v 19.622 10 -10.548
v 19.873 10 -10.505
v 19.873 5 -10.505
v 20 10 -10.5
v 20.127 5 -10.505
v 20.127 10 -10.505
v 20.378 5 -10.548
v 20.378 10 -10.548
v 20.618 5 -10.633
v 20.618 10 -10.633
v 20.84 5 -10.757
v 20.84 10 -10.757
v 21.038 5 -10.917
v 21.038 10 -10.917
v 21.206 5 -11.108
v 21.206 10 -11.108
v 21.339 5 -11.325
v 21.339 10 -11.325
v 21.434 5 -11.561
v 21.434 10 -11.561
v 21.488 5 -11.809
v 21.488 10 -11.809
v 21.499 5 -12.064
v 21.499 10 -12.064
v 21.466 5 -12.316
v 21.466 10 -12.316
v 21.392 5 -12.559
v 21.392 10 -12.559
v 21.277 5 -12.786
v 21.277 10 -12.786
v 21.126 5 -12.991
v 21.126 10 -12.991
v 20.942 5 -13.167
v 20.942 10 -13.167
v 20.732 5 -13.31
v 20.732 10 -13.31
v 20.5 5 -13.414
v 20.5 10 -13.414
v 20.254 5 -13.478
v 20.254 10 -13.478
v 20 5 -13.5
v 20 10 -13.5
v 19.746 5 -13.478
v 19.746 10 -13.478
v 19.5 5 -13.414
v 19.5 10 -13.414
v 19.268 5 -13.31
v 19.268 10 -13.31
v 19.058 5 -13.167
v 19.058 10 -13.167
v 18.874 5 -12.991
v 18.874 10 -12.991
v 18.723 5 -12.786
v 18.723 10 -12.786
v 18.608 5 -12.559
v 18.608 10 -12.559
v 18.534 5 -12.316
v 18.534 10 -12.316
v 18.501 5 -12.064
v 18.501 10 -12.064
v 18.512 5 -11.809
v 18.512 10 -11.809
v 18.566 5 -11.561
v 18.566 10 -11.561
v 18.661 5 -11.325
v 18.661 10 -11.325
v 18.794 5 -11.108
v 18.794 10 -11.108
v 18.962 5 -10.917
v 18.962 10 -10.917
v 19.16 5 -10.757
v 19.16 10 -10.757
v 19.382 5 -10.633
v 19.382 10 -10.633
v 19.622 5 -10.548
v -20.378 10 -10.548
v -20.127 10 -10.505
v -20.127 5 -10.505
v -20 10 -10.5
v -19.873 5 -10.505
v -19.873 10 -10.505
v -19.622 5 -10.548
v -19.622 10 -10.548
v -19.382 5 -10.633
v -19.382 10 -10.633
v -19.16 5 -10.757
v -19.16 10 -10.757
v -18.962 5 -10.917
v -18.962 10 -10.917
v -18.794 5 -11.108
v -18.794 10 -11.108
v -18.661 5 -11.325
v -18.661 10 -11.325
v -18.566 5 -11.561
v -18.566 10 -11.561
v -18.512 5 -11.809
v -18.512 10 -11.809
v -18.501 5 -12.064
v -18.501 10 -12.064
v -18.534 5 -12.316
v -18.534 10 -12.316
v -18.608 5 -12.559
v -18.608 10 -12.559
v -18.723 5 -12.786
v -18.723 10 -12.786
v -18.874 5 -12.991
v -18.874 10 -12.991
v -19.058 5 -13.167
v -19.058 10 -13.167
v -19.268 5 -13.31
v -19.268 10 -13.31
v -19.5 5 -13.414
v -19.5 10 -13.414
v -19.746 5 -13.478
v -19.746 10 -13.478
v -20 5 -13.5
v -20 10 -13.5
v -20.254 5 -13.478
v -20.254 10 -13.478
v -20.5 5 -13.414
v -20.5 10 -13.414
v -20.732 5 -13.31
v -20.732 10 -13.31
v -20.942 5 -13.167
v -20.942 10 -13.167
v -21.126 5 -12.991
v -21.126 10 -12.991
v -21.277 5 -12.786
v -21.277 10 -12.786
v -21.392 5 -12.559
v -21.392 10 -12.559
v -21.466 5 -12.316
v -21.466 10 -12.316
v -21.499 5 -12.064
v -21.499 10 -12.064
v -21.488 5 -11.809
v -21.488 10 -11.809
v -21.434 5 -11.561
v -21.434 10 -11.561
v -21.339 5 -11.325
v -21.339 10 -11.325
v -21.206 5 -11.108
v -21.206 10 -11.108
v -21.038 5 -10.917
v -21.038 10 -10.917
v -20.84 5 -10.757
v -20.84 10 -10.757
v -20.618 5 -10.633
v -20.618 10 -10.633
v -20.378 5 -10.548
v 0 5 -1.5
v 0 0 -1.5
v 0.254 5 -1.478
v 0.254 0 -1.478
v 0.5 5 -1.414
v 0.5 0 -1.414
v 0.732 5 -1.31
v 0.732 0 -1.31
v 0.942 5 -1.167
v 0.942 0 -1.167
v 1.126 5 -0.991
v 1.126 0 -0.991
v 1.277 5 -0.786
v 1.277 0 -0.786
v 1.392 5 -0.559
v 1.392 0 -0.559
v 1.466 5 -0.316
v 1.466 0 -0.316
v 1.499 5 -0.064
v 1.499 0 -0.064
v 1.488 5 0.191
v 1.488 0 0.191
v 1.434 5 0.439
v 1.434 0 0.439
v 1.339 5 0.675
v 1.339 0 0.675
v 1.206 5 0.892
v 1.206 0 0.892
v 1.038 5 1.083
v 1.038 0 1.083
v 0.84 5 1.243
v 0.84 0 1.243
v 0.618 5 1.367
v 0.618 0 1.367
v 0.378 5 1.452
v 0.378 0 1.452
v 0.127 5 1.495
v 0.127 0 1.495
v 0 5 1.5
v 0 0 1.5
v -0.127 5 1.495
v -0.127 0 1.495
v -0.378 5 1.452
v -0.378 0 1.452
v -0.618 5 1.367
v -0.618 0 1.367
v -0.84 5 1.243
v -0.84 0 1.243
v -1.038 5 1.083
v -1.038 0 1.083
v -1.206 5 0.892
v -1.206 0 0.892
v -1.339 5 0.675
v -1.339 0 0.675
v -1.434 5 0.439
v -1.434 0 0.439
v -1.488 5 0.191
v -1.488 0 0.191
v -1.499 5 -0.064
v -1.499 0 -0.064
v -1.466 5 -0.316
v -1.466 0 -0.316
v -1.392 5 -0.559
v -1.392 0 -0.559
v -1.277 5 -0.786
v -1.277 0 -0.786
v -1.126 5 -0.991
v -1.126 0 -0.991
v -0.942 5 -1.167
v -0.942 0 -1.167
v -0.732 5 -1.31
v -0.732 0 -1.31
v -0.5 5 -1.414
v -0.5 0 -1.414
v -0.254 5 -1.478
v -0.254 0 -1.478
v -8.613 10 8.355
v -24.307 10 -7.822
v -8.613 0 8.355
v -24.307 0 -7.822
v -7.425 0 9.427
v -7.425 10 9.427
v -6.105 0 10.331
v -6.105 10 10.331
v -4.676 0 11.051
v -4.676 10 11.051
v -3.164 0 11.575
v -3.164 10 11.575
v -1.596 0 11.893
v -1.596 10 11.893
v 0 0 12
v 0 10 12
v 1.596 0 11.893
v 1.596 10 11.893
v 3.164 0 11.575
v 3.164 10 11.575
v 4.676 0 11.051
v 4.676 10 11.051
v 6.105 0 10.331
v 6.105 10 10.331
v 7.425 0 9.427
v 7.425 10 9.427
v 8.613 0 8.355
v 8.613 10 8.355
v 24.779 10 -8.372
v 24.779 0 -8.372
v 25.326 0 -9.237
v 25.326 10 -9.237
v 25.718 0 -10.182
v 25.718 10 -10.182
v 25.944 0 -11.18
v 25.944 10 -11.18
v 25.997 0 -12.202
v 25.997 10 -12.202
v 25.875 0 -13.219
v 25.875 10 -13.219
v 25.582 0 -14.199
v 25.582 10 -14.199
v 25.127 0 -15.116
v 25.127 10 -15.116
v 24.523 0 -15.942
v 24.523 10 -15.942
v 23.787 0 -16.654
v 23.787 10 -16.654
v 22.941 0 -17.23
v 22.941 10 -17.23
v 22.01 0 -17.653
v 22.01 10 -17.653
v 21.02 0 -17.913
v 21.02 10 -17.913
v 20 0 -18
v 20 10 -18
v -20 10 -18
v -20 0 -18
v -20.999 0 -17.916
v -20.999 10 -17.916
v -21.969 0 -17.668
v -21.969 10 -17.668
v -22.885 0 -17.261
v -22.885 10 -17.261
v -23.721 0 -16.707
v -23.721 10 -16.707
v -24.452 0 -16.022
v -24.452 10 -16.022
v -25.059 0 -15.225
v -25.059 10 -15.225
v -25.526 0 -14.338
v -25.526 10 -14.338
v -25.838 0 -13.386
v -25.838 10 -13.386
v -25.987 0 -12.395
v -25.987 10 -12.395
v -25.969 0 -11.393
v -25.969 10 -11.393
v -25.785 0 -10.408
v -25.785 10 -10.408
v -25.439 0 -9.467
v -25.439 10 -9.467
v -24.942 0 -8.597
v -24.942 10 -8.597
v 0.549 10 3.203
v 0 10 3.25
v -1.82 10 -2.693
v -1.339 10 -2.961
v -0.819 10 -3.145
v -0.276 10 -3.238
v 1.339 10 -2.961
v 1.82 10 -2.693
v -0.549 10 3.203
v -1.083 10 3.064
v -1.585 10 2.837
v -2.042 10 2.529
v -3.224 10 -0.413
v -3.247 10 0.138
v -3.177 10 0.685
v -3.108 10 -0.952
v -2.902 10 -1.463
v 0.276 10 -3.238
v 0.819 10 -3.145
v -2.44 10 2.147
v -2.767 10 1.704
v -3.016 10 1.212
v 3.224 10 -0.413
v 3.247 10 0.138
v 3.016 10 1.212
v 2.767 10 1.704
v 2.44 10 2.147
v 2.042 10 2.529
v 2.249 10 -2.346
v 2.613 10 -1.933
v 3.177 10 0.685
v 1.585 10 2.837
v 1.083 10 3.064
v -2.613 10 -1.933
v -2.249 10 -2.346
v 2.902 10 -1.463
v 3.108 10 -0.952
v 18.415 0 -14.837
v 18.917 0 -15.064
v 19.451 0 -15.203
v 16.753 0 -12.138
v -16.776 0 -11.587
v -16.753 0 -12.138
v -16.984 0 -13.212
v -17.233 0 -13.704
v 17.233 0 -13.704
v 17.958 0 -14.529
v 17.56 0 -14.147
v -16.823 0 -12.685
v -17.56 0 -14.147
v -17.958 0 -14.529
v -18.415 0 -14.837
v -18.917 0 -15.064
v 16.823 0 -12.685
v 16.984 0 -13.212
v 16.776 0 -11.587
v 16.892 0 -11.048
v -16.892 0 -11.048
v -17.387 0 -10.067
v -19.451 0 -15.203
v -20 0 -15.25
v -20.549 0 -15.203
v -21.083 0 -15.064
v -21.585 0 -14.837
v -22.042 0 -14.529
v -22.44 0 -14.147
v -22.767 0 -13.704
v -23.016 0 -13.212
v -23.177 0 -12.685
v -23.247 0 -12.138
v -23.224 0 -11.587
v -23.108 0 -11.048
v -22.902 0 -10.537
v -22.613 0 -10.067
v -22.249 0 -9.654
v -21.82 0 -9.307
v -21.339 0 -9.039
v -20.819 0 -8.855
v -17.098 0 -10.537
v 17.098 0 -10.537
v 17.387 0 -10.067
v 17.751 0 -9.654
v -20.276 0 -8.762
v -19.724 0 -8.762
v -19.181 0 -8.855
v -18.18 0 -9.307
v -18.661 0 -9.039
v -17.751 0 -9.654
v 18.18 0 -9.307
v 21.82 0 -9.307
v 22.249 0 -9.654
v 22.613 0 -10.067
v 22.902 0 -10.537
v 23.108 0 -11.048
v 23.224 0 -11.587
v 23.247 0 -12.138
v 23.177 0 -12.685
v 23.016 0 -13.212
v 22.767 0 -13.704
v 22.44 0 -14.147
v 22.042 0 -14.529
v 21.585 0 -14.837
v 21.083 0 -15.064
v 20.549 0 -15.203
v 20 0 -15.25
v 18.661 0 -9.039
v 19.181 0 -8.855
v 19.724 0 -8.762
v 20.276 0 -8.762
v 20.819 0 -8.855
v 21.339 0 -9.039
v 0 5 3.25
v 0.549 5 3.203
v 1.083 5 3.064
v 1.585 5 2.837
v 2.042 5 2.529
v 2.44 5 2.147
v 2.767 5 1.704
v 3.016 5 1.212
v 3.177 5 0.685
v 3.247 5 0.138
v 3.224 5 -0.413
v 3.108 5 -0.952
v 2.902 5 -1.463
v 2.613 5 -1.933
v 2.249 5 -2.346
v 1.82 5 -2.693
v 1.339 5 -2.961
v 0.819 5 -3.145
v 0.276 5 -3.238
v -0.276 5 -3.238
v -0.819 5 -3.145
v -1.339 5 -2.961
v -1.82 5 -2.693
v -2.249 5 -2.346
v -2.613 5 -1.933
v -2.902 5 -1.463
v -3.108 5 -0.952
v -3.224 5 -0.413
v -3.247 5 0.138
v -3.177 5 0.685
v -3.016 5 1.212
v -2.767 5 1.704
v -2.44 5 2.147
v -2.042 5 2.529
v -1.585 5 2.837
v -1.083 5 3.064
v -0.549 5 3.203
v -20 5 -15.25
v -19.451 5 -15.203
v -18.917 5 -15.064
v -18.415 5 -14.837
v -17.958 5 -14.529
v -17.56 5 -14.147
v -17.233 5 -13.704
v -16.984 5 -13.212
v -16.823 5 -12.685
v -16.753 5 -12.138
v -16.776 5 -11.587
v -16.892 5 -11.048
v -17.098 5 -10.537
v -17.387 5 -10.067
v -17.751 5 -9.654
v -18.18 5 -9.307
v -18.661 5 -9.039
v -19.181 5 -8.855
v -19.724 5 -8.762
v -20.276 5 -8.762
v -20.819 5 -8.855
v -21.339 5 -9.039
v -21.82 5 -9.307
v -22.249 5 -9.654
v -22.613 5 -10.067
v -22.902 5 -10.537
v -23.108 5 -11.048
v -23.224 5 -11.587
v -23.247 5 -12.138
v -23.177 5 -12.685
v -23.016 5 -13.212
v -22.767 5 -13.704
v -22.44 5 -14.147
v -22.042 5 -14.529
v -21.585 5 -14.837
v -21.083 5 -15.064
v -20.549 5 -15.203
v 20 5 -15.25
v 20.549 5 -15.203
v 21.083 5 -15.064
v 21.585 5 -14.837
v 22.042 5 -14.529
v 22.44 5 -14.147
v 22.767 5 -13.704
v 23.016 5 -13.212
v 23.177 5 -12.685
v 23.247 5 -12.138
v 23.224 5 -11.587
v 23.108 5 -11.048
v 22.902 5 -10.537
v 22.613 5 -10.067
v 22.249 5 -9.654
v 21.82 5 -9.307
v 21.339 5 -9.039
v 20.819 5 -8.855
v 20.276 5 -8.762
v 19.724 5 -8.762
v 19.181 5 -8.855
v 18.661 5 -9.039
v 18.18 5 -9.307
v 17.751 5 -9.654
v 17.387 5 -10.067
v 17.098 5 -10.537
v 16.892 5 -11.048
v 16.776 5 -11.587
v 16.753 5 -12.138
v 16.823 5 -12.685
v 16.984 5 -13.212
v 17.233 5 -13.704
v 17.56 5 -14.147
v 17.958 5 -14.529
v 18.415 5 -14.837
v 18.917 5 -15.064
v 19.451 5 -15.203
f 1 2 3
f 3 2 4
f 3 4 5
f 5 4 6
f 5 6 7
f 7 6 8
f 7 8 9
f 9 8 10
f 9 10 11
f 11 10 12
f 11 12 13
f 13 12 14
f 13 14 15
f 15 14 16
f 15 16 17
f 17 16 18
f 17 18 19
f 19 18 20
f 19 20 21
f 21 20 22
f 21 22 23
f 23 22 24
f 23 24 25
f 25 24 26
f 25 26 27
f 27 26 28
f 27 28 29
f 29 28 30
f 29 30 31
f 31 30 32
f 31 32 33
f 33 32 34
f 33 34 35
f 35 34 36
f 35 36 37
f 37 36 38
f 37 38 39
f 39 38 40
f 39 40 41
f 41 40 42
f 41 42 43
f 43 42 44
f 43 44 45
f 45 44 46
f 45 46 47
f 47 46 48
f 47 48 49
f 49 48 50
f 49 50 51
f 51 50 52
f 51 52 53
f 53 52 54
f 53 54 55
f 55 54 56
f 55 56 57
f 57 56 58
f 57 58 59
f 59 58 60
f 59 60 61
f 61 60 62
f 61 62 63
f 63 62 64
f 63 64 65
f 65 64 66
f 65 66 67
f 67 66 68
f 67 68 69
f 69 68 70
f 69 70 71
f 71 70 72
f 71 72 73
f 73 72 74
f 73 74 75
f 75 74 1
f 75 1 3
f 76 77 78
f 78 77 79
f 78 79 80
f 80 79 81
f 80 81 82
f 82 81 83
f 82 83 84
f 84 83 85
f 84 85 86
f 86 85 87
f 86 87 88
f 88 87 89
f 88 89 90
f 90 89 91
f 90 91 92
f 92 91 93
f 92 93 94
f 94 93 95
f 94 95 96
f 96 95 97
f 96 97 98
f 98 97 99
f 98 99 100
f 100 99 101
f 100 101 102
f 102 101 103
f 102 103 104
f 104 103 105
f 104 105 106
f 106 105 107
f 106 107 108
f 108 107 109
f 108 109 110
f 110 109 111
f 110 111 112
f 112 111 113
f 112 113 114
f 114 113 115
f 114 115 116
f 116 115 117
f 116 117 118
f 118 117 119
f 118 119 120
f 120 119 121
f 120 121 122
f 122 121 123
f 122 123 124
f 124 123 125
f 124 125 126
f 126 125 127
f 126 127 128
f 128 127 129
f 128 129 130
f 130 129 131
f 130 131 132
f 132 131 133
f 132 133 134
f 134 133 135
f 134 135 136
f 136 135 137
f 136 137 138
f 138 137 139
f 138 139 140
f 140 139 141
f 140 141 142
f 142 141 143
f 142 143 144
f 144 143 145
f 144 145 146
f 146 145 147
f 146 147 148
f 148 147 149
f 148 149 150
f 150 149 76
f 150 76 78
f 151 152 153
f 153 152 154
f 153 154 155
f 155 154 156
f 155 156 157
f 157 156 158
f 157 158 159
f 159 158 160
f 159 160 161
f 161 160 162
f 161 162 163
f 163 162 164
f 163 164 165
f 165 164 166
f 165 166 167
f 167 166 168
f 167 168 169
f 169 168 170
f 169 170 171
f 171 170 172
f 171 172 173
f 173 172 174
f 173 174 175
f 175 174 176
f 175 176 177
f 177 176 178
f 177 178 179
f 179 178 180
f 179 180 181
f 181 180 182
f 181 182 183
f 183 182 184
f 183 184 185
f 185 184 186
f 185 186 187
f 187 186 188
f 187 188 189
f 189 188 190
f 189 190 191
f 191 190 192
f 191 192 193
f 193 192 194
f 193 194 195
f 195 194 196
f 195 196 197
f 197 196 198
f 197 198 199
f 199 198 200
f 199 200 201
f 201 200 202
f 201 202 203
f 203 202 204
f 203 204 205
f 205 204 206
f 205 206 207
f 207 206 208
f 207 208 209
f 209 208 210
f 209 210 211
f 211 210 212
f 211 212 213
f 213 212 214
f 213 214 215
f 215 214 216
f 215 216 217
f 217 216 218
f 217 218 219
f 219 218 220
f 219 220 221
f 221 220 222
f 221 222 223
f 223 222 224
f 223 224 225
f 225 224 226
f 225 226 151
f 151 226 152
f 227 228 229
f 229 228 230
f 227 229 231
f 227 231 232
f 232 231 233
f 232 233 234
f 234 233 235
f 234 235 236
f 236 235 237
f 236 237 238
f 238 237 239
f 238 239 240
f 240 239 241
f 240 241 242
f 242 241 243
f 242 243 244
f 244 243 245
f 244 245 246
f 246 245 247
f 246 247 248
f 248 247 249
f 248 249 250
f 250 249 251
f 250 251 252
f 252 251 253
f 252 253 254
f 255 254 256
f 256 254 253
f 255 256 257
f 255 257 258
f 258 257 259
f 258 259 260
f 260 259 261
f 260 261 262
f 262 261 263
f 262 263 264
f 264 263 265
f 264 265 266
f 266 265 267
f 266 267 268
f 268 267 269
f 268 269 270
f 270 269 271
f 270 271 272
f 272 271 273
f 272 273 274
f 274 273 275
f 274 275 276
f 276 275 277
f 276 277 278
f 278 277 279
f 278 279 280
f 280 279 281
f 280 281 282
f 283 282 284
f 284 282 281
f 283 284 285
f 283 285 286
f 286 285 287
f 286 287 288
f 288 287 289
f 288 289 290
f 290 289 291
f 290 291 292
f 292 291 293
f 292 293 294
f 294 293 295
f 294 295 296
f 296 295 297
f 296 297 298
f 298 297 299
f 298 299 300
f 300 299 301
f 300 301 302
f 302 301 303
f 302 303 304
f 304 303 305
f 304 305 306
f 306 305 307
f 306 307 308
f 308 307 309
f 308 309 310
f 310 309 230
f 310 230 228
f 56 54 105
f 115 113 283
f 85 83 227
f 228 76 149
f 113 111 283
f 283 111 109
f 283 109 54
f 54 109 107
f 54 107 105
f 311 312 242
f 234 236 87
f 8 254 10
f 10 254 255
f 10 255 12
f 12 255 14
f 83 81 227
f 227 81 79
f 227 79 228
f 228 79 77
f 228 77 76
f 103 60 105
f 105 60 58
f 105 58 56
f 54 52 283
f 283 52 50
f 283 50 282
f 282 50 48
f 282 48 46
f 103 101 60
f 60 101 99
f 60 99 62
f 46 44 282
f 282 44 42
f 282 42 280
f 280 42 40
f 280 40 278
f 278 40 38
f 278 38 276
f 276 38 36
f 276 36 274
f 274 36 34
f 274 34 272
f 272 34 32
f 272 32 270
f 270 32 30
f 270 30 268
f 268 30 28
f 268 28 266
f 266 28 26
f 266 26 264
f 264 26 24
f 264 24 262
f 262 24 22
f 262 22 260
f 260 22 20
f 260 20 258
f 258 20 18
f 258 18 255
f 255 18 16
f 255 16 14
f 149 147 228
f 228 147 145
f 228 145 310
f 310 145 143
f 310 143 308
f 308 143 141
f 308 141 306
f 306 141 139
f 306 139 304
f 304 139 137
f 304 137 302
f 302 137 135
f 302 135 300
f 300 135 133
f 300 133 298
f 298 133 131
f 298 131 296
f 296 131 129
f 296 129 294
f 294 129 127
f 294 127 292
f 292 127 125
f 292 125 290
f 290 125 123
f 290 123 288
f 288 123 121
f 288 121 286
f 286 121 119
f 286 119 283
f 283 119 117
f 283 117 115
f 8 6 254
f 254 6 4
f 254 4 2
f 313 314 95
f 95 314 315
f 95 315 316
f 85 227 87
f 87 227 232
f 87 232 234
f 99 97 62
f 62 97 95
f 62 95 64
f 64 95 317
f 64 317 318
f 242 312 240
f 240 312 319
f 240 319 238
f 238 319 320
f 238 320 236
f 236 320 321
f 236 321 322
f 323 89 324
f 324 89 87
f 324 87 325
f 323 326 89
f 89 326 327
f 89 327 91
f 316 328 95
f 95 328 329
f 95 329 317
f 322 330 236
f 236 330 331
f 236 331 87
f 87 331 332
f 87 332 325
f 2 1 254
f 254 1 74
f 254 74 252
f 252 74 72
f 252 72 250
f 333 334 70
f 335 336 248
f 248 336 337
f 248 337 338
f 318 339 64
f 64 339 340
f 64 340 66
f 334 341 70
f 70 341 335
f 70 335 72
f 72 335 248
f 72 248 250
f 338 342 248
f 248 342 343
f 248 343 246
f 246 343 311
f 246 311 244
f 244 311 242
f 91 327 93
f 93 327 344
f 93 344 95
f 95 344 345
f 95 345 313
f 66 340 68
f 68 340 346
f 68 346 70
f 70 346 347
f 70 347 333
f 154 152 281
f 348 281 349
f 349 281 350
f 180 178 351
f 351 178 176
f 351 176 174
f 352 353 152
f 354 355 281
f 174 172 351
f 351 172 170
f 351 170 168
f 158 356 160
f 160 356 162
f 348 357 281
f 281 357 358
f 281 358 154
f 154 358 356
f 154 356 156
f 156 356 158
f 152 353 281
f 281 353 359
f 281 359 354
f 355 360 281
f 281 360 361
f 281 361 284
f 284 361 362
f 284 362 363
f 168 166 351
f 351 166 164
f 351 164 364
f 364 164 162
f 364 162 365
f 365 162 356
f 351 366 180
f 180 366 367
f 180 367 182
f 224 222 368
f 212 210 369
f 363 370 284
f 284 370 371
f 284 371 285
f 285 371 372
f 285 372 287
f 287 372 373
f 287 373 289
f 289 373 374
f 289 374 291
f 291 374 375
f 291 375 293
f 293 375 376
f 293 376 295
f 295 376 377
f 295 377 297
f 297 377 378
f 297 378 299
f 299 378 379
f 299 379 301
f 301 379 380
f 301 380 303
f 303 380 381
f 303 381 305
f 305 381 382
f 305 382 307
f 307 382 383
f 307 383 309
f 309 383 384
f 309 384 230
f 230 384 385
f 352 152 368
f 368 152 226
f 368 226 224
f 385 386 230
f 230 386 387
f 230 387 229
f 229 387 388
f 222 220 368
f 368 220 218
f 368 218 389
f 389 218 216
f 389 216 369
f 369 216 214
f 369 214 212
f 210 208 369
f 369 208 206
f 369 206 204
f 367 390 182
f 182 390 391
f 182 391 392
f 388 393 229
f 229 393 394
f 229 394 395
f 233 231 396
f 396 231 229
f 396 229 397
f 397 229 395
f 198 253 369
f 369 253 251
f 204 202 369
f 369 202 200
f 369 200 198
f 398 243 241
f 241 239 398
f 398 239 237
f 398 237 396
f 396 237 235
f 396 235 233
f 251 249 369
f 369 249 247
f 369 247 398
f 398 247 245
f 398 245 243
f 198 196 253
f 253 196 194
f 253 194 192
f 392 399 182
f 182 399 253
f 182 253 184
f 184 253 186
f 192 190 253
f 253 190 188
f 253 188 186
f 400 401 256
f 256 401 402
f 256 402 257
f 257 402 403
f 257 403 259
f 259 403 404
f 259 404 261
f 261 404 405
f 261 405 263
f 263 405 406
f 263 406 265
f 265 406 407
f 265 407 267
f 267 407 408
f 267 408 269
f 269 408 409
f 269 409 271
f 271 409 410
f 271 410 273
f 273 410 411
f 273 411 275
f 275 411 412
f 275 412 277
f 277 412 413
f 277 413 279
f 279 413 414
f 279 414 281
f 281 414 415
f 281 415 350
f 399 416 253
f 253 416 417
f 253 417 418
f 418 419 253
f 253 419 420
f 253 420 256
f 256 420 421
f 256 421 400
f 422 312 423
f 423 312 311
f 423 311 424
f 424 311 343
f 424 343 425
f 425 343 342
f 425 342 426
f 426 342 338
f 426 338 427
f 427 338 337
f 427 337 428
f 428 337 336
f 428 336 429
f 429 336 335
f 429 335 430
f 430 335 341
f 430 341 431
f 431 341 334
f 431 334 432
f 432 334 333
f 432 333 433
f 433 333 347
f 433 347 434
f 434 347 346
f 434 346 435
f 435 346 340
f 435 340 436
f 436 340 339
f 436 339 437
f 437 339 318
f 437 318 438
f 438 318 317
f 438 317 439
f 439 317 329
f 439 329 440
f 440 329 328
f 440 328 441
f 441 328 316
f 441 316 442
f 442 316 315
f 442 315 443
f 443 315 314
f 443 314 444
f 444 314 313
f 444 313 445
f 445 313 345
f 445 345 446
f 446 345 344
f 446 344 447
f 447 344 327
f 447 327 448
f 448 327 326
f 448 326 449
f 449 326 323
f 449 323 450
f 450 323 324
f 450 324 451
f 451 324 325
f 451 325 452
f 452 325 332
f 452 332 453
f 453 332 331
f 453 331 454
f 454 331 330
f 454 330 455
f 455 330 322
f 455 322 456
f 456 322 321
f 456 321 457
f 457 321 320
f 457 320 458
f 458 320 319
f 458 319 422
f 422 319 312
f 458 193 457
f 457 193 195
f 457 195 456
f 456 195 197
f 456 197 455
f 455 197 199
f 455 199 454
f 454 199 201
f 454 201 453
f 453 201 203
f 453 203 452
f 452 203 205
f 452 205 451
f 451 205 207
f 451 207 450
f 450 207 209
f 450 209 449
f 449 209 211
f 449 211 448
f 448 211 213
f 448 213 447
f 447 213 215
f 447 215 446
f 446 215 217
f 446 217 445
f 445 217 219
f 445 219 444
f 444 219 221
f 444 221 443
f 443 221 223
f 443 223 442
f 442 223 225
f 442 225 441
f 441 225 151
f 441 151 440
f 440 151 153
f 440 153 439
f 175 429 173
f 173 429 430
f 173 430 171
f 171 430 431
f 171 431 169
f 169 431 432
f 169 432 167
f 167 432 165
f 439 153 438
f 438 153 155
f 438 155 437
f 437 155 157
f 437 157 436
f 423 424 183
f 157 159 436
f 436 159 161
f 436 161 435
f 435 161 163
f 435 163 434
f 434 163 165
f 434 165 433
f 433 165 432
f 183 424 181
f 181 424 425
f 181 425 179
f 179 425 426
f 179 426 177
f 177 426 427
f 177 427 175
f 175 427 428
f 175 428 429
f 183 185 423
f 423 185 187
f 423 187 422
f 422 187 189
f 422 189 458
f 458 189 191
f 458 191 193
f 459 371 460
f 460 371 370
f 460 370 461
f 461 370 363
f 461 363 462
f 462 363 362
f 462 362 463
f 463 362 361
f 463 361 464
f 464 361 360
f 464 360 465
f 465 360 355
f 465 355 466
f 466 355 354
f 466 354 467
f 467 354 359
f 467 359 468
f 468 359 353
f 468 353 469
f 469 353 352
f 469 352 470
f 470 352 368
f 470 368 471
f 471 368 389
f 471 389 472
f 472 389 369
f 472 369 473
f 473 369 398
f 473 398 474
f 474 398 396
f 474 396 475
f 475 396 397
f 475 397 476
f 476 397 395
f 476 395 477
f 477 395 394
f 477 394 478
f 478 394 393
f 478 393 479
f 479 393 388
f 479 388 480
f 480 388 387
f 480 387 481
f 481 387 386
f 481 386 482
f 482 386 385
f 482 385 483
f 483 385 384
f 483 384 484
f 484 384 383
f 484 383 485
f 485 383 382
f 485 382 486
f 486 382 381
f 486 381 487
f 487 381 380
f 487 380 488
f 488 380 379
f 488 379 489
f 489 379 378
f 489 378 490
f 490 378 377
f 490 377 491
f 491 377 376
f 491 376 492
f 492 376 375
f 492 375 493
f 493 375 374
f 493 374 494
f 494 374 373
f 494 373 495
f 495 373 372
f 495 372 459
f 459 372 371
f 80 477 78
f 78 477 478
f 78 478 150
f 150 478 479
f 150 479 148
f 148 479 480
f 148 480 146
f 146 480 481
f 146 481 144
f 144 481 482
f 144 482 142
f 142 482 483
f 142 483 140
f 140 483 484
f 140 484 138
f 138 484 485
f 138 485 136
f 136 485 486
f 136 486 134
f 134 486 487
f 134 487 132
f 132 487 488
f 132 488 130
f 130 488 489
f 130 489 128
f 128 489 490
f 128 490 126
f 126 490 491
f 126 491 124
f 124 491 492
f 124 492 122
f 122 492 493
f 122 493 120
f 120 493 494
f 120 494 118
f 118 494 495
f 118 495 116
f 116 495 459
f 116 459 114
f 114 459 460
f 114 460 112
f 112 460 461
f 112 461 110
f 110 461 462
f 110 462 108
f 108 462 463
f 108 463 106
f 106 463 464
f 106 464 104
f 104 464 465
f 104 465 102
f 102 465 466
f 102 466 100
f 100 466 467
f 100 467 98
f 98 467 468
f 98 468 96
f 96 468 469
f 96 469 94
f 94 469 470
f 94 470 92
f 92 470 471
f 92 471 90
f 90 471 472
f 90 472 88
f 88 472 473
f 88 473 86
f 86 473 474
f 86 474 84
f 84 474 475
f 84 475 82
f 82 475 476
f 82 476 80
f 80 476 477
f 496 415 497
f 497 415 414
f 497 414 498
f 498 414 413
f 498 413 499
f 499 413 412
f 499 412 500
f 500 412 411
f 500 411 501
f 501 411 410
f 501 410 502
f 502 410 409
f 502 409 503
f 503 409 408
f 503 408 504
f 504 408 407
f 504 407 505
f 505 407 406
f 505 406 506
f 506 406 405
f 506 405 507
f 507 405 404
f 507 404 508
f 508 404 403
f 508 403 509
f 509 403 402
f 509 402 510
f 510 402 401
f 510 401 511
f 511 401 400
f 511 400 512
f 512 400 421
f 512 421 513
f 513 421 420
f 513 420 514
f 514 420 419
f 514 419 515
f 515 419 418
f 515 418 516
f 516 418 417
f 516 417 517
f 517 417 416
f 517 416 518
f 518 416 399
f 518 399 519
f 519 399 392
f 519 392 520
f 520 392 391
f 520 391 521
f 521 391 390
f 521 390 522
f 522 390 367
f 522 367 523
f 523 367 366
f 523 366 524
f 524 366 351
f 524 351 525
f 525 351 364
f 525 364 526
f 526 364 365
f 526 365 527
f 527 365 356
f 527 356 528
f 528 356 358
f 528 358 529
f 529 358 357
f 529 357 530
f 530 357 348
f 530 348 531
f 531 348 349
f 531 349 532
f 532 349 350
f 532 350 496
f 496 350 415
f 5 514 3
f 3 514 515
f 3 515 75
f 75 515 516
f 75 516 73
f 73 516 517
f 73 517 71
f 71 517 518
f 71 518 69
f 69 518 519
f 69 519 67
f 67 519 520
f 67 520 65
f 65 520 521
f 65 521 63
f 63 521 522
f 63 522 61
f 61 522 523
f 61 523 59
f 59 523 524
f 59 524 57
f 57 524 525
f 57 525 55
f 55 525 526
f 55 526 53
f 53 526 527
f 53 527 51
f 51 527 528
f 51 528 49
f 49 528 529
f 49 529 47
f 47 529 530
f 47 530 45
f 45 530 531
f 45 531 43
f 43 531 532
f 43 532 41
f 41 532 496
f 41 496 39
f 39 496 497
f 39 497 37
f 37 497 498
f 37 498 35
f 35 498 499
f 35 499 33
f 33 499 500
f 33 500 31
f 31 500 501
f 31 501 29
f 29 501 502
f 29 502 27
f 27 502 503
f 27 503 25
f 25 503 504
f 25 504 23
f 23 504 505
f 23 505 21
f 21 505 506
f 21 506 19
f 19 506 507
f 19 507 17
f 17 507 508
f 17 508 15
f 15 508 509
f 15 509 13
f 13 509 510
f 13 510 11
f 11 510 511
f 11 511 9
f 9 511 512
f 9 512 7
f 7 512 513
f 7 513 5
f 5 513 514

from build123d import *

# Parameters (mm, degrees)
BOSS_EXTRUDE1_OUTLINE_R = 1.5
BOSS_EXTRUDE1_DEPTH     = 10
SKETCH3_R               = 3.25
CUT_EXTRUDE1_DEPTH      = 5
SKETCH4_R               = 3.25
CUT_EXTRUDE2_DEPTH      = 5


# Read off the part's stored shape, not the designer's step: Boss-Extrude1
with BuildPart() as part:
    # Boss-Extrude1 outline → Boss-Extrude1 (new body)
    with BuildSketch(Plane(origin=(0, 0, 0), x_dir=(1, 0, 0), z_dir=(0, 1, 0))):
        with BuildLine():
            ThreePointArc((-20, 18), (-25.525673356, 14.33814755), (-24.306613207, 7.822311322))
            Line((-24.306613207, 7.822311322), (-8.613226413, -8.355377356))
            ThreePointArc((-8.613226413, -8.355377356), (0, -12), (8.613226413, -8.355377356))
            Line((8.613226413, -8.355377356), (24.778677898, 8.371744559))
            ThreePointArc((24.778677898, 8.371744559), (25.374454979, 14.667439536), (20, 18))
            Line((20, 18), (-20, 18))
        make_face()
        Circle(BOSS_EXTRUDE1_OUTLINE_R, mode=Mode.SUBTRACT)
        with Locations((-20, 12)):
            Circle(BOSS_EXTRUDE1_OUTLINE_R, mode=Mode.SUBTRACT)
        with Locations((20, 12)):
            Circle(BOSS_EXTRUDE1_OUTLINE_R, mode=Mode.SUBTRACT)
    extrude(amount=BOSS_EXTRUDE1_DEPTH)

    # Sketch3 → Cut-Extrude1 (cut)
    with BuildSketch(Plane(origin=(0, 10, 0), x_dir=(1, 0, 0), z_dir=(0, 1, 0))):
        with Locations(Location((0, 0, 0), (0, 0, 270))):
            Circle(SKETCH3_R)
    extrude(amount=-CUT_EXTRUDE1_DEPTH, mode=Mode.SUBTRACT)

    # Sketch4 → Cut-Extrude2 (cut)
    with BuildSketch(Plane.XZ):
        with Locations(Location((20, -12, 0), (0, 0, 270))):
            Circle(SKETCH4_R)
        with Locations(Location((-20, -12, 0), (0, 0, 270))):
            Circle(SKETCH4_R)
    extrude(amount=-CUT_EXTRUDE2_DEPTH, mode=Mode.SUBTRACT)


solid = part.part
